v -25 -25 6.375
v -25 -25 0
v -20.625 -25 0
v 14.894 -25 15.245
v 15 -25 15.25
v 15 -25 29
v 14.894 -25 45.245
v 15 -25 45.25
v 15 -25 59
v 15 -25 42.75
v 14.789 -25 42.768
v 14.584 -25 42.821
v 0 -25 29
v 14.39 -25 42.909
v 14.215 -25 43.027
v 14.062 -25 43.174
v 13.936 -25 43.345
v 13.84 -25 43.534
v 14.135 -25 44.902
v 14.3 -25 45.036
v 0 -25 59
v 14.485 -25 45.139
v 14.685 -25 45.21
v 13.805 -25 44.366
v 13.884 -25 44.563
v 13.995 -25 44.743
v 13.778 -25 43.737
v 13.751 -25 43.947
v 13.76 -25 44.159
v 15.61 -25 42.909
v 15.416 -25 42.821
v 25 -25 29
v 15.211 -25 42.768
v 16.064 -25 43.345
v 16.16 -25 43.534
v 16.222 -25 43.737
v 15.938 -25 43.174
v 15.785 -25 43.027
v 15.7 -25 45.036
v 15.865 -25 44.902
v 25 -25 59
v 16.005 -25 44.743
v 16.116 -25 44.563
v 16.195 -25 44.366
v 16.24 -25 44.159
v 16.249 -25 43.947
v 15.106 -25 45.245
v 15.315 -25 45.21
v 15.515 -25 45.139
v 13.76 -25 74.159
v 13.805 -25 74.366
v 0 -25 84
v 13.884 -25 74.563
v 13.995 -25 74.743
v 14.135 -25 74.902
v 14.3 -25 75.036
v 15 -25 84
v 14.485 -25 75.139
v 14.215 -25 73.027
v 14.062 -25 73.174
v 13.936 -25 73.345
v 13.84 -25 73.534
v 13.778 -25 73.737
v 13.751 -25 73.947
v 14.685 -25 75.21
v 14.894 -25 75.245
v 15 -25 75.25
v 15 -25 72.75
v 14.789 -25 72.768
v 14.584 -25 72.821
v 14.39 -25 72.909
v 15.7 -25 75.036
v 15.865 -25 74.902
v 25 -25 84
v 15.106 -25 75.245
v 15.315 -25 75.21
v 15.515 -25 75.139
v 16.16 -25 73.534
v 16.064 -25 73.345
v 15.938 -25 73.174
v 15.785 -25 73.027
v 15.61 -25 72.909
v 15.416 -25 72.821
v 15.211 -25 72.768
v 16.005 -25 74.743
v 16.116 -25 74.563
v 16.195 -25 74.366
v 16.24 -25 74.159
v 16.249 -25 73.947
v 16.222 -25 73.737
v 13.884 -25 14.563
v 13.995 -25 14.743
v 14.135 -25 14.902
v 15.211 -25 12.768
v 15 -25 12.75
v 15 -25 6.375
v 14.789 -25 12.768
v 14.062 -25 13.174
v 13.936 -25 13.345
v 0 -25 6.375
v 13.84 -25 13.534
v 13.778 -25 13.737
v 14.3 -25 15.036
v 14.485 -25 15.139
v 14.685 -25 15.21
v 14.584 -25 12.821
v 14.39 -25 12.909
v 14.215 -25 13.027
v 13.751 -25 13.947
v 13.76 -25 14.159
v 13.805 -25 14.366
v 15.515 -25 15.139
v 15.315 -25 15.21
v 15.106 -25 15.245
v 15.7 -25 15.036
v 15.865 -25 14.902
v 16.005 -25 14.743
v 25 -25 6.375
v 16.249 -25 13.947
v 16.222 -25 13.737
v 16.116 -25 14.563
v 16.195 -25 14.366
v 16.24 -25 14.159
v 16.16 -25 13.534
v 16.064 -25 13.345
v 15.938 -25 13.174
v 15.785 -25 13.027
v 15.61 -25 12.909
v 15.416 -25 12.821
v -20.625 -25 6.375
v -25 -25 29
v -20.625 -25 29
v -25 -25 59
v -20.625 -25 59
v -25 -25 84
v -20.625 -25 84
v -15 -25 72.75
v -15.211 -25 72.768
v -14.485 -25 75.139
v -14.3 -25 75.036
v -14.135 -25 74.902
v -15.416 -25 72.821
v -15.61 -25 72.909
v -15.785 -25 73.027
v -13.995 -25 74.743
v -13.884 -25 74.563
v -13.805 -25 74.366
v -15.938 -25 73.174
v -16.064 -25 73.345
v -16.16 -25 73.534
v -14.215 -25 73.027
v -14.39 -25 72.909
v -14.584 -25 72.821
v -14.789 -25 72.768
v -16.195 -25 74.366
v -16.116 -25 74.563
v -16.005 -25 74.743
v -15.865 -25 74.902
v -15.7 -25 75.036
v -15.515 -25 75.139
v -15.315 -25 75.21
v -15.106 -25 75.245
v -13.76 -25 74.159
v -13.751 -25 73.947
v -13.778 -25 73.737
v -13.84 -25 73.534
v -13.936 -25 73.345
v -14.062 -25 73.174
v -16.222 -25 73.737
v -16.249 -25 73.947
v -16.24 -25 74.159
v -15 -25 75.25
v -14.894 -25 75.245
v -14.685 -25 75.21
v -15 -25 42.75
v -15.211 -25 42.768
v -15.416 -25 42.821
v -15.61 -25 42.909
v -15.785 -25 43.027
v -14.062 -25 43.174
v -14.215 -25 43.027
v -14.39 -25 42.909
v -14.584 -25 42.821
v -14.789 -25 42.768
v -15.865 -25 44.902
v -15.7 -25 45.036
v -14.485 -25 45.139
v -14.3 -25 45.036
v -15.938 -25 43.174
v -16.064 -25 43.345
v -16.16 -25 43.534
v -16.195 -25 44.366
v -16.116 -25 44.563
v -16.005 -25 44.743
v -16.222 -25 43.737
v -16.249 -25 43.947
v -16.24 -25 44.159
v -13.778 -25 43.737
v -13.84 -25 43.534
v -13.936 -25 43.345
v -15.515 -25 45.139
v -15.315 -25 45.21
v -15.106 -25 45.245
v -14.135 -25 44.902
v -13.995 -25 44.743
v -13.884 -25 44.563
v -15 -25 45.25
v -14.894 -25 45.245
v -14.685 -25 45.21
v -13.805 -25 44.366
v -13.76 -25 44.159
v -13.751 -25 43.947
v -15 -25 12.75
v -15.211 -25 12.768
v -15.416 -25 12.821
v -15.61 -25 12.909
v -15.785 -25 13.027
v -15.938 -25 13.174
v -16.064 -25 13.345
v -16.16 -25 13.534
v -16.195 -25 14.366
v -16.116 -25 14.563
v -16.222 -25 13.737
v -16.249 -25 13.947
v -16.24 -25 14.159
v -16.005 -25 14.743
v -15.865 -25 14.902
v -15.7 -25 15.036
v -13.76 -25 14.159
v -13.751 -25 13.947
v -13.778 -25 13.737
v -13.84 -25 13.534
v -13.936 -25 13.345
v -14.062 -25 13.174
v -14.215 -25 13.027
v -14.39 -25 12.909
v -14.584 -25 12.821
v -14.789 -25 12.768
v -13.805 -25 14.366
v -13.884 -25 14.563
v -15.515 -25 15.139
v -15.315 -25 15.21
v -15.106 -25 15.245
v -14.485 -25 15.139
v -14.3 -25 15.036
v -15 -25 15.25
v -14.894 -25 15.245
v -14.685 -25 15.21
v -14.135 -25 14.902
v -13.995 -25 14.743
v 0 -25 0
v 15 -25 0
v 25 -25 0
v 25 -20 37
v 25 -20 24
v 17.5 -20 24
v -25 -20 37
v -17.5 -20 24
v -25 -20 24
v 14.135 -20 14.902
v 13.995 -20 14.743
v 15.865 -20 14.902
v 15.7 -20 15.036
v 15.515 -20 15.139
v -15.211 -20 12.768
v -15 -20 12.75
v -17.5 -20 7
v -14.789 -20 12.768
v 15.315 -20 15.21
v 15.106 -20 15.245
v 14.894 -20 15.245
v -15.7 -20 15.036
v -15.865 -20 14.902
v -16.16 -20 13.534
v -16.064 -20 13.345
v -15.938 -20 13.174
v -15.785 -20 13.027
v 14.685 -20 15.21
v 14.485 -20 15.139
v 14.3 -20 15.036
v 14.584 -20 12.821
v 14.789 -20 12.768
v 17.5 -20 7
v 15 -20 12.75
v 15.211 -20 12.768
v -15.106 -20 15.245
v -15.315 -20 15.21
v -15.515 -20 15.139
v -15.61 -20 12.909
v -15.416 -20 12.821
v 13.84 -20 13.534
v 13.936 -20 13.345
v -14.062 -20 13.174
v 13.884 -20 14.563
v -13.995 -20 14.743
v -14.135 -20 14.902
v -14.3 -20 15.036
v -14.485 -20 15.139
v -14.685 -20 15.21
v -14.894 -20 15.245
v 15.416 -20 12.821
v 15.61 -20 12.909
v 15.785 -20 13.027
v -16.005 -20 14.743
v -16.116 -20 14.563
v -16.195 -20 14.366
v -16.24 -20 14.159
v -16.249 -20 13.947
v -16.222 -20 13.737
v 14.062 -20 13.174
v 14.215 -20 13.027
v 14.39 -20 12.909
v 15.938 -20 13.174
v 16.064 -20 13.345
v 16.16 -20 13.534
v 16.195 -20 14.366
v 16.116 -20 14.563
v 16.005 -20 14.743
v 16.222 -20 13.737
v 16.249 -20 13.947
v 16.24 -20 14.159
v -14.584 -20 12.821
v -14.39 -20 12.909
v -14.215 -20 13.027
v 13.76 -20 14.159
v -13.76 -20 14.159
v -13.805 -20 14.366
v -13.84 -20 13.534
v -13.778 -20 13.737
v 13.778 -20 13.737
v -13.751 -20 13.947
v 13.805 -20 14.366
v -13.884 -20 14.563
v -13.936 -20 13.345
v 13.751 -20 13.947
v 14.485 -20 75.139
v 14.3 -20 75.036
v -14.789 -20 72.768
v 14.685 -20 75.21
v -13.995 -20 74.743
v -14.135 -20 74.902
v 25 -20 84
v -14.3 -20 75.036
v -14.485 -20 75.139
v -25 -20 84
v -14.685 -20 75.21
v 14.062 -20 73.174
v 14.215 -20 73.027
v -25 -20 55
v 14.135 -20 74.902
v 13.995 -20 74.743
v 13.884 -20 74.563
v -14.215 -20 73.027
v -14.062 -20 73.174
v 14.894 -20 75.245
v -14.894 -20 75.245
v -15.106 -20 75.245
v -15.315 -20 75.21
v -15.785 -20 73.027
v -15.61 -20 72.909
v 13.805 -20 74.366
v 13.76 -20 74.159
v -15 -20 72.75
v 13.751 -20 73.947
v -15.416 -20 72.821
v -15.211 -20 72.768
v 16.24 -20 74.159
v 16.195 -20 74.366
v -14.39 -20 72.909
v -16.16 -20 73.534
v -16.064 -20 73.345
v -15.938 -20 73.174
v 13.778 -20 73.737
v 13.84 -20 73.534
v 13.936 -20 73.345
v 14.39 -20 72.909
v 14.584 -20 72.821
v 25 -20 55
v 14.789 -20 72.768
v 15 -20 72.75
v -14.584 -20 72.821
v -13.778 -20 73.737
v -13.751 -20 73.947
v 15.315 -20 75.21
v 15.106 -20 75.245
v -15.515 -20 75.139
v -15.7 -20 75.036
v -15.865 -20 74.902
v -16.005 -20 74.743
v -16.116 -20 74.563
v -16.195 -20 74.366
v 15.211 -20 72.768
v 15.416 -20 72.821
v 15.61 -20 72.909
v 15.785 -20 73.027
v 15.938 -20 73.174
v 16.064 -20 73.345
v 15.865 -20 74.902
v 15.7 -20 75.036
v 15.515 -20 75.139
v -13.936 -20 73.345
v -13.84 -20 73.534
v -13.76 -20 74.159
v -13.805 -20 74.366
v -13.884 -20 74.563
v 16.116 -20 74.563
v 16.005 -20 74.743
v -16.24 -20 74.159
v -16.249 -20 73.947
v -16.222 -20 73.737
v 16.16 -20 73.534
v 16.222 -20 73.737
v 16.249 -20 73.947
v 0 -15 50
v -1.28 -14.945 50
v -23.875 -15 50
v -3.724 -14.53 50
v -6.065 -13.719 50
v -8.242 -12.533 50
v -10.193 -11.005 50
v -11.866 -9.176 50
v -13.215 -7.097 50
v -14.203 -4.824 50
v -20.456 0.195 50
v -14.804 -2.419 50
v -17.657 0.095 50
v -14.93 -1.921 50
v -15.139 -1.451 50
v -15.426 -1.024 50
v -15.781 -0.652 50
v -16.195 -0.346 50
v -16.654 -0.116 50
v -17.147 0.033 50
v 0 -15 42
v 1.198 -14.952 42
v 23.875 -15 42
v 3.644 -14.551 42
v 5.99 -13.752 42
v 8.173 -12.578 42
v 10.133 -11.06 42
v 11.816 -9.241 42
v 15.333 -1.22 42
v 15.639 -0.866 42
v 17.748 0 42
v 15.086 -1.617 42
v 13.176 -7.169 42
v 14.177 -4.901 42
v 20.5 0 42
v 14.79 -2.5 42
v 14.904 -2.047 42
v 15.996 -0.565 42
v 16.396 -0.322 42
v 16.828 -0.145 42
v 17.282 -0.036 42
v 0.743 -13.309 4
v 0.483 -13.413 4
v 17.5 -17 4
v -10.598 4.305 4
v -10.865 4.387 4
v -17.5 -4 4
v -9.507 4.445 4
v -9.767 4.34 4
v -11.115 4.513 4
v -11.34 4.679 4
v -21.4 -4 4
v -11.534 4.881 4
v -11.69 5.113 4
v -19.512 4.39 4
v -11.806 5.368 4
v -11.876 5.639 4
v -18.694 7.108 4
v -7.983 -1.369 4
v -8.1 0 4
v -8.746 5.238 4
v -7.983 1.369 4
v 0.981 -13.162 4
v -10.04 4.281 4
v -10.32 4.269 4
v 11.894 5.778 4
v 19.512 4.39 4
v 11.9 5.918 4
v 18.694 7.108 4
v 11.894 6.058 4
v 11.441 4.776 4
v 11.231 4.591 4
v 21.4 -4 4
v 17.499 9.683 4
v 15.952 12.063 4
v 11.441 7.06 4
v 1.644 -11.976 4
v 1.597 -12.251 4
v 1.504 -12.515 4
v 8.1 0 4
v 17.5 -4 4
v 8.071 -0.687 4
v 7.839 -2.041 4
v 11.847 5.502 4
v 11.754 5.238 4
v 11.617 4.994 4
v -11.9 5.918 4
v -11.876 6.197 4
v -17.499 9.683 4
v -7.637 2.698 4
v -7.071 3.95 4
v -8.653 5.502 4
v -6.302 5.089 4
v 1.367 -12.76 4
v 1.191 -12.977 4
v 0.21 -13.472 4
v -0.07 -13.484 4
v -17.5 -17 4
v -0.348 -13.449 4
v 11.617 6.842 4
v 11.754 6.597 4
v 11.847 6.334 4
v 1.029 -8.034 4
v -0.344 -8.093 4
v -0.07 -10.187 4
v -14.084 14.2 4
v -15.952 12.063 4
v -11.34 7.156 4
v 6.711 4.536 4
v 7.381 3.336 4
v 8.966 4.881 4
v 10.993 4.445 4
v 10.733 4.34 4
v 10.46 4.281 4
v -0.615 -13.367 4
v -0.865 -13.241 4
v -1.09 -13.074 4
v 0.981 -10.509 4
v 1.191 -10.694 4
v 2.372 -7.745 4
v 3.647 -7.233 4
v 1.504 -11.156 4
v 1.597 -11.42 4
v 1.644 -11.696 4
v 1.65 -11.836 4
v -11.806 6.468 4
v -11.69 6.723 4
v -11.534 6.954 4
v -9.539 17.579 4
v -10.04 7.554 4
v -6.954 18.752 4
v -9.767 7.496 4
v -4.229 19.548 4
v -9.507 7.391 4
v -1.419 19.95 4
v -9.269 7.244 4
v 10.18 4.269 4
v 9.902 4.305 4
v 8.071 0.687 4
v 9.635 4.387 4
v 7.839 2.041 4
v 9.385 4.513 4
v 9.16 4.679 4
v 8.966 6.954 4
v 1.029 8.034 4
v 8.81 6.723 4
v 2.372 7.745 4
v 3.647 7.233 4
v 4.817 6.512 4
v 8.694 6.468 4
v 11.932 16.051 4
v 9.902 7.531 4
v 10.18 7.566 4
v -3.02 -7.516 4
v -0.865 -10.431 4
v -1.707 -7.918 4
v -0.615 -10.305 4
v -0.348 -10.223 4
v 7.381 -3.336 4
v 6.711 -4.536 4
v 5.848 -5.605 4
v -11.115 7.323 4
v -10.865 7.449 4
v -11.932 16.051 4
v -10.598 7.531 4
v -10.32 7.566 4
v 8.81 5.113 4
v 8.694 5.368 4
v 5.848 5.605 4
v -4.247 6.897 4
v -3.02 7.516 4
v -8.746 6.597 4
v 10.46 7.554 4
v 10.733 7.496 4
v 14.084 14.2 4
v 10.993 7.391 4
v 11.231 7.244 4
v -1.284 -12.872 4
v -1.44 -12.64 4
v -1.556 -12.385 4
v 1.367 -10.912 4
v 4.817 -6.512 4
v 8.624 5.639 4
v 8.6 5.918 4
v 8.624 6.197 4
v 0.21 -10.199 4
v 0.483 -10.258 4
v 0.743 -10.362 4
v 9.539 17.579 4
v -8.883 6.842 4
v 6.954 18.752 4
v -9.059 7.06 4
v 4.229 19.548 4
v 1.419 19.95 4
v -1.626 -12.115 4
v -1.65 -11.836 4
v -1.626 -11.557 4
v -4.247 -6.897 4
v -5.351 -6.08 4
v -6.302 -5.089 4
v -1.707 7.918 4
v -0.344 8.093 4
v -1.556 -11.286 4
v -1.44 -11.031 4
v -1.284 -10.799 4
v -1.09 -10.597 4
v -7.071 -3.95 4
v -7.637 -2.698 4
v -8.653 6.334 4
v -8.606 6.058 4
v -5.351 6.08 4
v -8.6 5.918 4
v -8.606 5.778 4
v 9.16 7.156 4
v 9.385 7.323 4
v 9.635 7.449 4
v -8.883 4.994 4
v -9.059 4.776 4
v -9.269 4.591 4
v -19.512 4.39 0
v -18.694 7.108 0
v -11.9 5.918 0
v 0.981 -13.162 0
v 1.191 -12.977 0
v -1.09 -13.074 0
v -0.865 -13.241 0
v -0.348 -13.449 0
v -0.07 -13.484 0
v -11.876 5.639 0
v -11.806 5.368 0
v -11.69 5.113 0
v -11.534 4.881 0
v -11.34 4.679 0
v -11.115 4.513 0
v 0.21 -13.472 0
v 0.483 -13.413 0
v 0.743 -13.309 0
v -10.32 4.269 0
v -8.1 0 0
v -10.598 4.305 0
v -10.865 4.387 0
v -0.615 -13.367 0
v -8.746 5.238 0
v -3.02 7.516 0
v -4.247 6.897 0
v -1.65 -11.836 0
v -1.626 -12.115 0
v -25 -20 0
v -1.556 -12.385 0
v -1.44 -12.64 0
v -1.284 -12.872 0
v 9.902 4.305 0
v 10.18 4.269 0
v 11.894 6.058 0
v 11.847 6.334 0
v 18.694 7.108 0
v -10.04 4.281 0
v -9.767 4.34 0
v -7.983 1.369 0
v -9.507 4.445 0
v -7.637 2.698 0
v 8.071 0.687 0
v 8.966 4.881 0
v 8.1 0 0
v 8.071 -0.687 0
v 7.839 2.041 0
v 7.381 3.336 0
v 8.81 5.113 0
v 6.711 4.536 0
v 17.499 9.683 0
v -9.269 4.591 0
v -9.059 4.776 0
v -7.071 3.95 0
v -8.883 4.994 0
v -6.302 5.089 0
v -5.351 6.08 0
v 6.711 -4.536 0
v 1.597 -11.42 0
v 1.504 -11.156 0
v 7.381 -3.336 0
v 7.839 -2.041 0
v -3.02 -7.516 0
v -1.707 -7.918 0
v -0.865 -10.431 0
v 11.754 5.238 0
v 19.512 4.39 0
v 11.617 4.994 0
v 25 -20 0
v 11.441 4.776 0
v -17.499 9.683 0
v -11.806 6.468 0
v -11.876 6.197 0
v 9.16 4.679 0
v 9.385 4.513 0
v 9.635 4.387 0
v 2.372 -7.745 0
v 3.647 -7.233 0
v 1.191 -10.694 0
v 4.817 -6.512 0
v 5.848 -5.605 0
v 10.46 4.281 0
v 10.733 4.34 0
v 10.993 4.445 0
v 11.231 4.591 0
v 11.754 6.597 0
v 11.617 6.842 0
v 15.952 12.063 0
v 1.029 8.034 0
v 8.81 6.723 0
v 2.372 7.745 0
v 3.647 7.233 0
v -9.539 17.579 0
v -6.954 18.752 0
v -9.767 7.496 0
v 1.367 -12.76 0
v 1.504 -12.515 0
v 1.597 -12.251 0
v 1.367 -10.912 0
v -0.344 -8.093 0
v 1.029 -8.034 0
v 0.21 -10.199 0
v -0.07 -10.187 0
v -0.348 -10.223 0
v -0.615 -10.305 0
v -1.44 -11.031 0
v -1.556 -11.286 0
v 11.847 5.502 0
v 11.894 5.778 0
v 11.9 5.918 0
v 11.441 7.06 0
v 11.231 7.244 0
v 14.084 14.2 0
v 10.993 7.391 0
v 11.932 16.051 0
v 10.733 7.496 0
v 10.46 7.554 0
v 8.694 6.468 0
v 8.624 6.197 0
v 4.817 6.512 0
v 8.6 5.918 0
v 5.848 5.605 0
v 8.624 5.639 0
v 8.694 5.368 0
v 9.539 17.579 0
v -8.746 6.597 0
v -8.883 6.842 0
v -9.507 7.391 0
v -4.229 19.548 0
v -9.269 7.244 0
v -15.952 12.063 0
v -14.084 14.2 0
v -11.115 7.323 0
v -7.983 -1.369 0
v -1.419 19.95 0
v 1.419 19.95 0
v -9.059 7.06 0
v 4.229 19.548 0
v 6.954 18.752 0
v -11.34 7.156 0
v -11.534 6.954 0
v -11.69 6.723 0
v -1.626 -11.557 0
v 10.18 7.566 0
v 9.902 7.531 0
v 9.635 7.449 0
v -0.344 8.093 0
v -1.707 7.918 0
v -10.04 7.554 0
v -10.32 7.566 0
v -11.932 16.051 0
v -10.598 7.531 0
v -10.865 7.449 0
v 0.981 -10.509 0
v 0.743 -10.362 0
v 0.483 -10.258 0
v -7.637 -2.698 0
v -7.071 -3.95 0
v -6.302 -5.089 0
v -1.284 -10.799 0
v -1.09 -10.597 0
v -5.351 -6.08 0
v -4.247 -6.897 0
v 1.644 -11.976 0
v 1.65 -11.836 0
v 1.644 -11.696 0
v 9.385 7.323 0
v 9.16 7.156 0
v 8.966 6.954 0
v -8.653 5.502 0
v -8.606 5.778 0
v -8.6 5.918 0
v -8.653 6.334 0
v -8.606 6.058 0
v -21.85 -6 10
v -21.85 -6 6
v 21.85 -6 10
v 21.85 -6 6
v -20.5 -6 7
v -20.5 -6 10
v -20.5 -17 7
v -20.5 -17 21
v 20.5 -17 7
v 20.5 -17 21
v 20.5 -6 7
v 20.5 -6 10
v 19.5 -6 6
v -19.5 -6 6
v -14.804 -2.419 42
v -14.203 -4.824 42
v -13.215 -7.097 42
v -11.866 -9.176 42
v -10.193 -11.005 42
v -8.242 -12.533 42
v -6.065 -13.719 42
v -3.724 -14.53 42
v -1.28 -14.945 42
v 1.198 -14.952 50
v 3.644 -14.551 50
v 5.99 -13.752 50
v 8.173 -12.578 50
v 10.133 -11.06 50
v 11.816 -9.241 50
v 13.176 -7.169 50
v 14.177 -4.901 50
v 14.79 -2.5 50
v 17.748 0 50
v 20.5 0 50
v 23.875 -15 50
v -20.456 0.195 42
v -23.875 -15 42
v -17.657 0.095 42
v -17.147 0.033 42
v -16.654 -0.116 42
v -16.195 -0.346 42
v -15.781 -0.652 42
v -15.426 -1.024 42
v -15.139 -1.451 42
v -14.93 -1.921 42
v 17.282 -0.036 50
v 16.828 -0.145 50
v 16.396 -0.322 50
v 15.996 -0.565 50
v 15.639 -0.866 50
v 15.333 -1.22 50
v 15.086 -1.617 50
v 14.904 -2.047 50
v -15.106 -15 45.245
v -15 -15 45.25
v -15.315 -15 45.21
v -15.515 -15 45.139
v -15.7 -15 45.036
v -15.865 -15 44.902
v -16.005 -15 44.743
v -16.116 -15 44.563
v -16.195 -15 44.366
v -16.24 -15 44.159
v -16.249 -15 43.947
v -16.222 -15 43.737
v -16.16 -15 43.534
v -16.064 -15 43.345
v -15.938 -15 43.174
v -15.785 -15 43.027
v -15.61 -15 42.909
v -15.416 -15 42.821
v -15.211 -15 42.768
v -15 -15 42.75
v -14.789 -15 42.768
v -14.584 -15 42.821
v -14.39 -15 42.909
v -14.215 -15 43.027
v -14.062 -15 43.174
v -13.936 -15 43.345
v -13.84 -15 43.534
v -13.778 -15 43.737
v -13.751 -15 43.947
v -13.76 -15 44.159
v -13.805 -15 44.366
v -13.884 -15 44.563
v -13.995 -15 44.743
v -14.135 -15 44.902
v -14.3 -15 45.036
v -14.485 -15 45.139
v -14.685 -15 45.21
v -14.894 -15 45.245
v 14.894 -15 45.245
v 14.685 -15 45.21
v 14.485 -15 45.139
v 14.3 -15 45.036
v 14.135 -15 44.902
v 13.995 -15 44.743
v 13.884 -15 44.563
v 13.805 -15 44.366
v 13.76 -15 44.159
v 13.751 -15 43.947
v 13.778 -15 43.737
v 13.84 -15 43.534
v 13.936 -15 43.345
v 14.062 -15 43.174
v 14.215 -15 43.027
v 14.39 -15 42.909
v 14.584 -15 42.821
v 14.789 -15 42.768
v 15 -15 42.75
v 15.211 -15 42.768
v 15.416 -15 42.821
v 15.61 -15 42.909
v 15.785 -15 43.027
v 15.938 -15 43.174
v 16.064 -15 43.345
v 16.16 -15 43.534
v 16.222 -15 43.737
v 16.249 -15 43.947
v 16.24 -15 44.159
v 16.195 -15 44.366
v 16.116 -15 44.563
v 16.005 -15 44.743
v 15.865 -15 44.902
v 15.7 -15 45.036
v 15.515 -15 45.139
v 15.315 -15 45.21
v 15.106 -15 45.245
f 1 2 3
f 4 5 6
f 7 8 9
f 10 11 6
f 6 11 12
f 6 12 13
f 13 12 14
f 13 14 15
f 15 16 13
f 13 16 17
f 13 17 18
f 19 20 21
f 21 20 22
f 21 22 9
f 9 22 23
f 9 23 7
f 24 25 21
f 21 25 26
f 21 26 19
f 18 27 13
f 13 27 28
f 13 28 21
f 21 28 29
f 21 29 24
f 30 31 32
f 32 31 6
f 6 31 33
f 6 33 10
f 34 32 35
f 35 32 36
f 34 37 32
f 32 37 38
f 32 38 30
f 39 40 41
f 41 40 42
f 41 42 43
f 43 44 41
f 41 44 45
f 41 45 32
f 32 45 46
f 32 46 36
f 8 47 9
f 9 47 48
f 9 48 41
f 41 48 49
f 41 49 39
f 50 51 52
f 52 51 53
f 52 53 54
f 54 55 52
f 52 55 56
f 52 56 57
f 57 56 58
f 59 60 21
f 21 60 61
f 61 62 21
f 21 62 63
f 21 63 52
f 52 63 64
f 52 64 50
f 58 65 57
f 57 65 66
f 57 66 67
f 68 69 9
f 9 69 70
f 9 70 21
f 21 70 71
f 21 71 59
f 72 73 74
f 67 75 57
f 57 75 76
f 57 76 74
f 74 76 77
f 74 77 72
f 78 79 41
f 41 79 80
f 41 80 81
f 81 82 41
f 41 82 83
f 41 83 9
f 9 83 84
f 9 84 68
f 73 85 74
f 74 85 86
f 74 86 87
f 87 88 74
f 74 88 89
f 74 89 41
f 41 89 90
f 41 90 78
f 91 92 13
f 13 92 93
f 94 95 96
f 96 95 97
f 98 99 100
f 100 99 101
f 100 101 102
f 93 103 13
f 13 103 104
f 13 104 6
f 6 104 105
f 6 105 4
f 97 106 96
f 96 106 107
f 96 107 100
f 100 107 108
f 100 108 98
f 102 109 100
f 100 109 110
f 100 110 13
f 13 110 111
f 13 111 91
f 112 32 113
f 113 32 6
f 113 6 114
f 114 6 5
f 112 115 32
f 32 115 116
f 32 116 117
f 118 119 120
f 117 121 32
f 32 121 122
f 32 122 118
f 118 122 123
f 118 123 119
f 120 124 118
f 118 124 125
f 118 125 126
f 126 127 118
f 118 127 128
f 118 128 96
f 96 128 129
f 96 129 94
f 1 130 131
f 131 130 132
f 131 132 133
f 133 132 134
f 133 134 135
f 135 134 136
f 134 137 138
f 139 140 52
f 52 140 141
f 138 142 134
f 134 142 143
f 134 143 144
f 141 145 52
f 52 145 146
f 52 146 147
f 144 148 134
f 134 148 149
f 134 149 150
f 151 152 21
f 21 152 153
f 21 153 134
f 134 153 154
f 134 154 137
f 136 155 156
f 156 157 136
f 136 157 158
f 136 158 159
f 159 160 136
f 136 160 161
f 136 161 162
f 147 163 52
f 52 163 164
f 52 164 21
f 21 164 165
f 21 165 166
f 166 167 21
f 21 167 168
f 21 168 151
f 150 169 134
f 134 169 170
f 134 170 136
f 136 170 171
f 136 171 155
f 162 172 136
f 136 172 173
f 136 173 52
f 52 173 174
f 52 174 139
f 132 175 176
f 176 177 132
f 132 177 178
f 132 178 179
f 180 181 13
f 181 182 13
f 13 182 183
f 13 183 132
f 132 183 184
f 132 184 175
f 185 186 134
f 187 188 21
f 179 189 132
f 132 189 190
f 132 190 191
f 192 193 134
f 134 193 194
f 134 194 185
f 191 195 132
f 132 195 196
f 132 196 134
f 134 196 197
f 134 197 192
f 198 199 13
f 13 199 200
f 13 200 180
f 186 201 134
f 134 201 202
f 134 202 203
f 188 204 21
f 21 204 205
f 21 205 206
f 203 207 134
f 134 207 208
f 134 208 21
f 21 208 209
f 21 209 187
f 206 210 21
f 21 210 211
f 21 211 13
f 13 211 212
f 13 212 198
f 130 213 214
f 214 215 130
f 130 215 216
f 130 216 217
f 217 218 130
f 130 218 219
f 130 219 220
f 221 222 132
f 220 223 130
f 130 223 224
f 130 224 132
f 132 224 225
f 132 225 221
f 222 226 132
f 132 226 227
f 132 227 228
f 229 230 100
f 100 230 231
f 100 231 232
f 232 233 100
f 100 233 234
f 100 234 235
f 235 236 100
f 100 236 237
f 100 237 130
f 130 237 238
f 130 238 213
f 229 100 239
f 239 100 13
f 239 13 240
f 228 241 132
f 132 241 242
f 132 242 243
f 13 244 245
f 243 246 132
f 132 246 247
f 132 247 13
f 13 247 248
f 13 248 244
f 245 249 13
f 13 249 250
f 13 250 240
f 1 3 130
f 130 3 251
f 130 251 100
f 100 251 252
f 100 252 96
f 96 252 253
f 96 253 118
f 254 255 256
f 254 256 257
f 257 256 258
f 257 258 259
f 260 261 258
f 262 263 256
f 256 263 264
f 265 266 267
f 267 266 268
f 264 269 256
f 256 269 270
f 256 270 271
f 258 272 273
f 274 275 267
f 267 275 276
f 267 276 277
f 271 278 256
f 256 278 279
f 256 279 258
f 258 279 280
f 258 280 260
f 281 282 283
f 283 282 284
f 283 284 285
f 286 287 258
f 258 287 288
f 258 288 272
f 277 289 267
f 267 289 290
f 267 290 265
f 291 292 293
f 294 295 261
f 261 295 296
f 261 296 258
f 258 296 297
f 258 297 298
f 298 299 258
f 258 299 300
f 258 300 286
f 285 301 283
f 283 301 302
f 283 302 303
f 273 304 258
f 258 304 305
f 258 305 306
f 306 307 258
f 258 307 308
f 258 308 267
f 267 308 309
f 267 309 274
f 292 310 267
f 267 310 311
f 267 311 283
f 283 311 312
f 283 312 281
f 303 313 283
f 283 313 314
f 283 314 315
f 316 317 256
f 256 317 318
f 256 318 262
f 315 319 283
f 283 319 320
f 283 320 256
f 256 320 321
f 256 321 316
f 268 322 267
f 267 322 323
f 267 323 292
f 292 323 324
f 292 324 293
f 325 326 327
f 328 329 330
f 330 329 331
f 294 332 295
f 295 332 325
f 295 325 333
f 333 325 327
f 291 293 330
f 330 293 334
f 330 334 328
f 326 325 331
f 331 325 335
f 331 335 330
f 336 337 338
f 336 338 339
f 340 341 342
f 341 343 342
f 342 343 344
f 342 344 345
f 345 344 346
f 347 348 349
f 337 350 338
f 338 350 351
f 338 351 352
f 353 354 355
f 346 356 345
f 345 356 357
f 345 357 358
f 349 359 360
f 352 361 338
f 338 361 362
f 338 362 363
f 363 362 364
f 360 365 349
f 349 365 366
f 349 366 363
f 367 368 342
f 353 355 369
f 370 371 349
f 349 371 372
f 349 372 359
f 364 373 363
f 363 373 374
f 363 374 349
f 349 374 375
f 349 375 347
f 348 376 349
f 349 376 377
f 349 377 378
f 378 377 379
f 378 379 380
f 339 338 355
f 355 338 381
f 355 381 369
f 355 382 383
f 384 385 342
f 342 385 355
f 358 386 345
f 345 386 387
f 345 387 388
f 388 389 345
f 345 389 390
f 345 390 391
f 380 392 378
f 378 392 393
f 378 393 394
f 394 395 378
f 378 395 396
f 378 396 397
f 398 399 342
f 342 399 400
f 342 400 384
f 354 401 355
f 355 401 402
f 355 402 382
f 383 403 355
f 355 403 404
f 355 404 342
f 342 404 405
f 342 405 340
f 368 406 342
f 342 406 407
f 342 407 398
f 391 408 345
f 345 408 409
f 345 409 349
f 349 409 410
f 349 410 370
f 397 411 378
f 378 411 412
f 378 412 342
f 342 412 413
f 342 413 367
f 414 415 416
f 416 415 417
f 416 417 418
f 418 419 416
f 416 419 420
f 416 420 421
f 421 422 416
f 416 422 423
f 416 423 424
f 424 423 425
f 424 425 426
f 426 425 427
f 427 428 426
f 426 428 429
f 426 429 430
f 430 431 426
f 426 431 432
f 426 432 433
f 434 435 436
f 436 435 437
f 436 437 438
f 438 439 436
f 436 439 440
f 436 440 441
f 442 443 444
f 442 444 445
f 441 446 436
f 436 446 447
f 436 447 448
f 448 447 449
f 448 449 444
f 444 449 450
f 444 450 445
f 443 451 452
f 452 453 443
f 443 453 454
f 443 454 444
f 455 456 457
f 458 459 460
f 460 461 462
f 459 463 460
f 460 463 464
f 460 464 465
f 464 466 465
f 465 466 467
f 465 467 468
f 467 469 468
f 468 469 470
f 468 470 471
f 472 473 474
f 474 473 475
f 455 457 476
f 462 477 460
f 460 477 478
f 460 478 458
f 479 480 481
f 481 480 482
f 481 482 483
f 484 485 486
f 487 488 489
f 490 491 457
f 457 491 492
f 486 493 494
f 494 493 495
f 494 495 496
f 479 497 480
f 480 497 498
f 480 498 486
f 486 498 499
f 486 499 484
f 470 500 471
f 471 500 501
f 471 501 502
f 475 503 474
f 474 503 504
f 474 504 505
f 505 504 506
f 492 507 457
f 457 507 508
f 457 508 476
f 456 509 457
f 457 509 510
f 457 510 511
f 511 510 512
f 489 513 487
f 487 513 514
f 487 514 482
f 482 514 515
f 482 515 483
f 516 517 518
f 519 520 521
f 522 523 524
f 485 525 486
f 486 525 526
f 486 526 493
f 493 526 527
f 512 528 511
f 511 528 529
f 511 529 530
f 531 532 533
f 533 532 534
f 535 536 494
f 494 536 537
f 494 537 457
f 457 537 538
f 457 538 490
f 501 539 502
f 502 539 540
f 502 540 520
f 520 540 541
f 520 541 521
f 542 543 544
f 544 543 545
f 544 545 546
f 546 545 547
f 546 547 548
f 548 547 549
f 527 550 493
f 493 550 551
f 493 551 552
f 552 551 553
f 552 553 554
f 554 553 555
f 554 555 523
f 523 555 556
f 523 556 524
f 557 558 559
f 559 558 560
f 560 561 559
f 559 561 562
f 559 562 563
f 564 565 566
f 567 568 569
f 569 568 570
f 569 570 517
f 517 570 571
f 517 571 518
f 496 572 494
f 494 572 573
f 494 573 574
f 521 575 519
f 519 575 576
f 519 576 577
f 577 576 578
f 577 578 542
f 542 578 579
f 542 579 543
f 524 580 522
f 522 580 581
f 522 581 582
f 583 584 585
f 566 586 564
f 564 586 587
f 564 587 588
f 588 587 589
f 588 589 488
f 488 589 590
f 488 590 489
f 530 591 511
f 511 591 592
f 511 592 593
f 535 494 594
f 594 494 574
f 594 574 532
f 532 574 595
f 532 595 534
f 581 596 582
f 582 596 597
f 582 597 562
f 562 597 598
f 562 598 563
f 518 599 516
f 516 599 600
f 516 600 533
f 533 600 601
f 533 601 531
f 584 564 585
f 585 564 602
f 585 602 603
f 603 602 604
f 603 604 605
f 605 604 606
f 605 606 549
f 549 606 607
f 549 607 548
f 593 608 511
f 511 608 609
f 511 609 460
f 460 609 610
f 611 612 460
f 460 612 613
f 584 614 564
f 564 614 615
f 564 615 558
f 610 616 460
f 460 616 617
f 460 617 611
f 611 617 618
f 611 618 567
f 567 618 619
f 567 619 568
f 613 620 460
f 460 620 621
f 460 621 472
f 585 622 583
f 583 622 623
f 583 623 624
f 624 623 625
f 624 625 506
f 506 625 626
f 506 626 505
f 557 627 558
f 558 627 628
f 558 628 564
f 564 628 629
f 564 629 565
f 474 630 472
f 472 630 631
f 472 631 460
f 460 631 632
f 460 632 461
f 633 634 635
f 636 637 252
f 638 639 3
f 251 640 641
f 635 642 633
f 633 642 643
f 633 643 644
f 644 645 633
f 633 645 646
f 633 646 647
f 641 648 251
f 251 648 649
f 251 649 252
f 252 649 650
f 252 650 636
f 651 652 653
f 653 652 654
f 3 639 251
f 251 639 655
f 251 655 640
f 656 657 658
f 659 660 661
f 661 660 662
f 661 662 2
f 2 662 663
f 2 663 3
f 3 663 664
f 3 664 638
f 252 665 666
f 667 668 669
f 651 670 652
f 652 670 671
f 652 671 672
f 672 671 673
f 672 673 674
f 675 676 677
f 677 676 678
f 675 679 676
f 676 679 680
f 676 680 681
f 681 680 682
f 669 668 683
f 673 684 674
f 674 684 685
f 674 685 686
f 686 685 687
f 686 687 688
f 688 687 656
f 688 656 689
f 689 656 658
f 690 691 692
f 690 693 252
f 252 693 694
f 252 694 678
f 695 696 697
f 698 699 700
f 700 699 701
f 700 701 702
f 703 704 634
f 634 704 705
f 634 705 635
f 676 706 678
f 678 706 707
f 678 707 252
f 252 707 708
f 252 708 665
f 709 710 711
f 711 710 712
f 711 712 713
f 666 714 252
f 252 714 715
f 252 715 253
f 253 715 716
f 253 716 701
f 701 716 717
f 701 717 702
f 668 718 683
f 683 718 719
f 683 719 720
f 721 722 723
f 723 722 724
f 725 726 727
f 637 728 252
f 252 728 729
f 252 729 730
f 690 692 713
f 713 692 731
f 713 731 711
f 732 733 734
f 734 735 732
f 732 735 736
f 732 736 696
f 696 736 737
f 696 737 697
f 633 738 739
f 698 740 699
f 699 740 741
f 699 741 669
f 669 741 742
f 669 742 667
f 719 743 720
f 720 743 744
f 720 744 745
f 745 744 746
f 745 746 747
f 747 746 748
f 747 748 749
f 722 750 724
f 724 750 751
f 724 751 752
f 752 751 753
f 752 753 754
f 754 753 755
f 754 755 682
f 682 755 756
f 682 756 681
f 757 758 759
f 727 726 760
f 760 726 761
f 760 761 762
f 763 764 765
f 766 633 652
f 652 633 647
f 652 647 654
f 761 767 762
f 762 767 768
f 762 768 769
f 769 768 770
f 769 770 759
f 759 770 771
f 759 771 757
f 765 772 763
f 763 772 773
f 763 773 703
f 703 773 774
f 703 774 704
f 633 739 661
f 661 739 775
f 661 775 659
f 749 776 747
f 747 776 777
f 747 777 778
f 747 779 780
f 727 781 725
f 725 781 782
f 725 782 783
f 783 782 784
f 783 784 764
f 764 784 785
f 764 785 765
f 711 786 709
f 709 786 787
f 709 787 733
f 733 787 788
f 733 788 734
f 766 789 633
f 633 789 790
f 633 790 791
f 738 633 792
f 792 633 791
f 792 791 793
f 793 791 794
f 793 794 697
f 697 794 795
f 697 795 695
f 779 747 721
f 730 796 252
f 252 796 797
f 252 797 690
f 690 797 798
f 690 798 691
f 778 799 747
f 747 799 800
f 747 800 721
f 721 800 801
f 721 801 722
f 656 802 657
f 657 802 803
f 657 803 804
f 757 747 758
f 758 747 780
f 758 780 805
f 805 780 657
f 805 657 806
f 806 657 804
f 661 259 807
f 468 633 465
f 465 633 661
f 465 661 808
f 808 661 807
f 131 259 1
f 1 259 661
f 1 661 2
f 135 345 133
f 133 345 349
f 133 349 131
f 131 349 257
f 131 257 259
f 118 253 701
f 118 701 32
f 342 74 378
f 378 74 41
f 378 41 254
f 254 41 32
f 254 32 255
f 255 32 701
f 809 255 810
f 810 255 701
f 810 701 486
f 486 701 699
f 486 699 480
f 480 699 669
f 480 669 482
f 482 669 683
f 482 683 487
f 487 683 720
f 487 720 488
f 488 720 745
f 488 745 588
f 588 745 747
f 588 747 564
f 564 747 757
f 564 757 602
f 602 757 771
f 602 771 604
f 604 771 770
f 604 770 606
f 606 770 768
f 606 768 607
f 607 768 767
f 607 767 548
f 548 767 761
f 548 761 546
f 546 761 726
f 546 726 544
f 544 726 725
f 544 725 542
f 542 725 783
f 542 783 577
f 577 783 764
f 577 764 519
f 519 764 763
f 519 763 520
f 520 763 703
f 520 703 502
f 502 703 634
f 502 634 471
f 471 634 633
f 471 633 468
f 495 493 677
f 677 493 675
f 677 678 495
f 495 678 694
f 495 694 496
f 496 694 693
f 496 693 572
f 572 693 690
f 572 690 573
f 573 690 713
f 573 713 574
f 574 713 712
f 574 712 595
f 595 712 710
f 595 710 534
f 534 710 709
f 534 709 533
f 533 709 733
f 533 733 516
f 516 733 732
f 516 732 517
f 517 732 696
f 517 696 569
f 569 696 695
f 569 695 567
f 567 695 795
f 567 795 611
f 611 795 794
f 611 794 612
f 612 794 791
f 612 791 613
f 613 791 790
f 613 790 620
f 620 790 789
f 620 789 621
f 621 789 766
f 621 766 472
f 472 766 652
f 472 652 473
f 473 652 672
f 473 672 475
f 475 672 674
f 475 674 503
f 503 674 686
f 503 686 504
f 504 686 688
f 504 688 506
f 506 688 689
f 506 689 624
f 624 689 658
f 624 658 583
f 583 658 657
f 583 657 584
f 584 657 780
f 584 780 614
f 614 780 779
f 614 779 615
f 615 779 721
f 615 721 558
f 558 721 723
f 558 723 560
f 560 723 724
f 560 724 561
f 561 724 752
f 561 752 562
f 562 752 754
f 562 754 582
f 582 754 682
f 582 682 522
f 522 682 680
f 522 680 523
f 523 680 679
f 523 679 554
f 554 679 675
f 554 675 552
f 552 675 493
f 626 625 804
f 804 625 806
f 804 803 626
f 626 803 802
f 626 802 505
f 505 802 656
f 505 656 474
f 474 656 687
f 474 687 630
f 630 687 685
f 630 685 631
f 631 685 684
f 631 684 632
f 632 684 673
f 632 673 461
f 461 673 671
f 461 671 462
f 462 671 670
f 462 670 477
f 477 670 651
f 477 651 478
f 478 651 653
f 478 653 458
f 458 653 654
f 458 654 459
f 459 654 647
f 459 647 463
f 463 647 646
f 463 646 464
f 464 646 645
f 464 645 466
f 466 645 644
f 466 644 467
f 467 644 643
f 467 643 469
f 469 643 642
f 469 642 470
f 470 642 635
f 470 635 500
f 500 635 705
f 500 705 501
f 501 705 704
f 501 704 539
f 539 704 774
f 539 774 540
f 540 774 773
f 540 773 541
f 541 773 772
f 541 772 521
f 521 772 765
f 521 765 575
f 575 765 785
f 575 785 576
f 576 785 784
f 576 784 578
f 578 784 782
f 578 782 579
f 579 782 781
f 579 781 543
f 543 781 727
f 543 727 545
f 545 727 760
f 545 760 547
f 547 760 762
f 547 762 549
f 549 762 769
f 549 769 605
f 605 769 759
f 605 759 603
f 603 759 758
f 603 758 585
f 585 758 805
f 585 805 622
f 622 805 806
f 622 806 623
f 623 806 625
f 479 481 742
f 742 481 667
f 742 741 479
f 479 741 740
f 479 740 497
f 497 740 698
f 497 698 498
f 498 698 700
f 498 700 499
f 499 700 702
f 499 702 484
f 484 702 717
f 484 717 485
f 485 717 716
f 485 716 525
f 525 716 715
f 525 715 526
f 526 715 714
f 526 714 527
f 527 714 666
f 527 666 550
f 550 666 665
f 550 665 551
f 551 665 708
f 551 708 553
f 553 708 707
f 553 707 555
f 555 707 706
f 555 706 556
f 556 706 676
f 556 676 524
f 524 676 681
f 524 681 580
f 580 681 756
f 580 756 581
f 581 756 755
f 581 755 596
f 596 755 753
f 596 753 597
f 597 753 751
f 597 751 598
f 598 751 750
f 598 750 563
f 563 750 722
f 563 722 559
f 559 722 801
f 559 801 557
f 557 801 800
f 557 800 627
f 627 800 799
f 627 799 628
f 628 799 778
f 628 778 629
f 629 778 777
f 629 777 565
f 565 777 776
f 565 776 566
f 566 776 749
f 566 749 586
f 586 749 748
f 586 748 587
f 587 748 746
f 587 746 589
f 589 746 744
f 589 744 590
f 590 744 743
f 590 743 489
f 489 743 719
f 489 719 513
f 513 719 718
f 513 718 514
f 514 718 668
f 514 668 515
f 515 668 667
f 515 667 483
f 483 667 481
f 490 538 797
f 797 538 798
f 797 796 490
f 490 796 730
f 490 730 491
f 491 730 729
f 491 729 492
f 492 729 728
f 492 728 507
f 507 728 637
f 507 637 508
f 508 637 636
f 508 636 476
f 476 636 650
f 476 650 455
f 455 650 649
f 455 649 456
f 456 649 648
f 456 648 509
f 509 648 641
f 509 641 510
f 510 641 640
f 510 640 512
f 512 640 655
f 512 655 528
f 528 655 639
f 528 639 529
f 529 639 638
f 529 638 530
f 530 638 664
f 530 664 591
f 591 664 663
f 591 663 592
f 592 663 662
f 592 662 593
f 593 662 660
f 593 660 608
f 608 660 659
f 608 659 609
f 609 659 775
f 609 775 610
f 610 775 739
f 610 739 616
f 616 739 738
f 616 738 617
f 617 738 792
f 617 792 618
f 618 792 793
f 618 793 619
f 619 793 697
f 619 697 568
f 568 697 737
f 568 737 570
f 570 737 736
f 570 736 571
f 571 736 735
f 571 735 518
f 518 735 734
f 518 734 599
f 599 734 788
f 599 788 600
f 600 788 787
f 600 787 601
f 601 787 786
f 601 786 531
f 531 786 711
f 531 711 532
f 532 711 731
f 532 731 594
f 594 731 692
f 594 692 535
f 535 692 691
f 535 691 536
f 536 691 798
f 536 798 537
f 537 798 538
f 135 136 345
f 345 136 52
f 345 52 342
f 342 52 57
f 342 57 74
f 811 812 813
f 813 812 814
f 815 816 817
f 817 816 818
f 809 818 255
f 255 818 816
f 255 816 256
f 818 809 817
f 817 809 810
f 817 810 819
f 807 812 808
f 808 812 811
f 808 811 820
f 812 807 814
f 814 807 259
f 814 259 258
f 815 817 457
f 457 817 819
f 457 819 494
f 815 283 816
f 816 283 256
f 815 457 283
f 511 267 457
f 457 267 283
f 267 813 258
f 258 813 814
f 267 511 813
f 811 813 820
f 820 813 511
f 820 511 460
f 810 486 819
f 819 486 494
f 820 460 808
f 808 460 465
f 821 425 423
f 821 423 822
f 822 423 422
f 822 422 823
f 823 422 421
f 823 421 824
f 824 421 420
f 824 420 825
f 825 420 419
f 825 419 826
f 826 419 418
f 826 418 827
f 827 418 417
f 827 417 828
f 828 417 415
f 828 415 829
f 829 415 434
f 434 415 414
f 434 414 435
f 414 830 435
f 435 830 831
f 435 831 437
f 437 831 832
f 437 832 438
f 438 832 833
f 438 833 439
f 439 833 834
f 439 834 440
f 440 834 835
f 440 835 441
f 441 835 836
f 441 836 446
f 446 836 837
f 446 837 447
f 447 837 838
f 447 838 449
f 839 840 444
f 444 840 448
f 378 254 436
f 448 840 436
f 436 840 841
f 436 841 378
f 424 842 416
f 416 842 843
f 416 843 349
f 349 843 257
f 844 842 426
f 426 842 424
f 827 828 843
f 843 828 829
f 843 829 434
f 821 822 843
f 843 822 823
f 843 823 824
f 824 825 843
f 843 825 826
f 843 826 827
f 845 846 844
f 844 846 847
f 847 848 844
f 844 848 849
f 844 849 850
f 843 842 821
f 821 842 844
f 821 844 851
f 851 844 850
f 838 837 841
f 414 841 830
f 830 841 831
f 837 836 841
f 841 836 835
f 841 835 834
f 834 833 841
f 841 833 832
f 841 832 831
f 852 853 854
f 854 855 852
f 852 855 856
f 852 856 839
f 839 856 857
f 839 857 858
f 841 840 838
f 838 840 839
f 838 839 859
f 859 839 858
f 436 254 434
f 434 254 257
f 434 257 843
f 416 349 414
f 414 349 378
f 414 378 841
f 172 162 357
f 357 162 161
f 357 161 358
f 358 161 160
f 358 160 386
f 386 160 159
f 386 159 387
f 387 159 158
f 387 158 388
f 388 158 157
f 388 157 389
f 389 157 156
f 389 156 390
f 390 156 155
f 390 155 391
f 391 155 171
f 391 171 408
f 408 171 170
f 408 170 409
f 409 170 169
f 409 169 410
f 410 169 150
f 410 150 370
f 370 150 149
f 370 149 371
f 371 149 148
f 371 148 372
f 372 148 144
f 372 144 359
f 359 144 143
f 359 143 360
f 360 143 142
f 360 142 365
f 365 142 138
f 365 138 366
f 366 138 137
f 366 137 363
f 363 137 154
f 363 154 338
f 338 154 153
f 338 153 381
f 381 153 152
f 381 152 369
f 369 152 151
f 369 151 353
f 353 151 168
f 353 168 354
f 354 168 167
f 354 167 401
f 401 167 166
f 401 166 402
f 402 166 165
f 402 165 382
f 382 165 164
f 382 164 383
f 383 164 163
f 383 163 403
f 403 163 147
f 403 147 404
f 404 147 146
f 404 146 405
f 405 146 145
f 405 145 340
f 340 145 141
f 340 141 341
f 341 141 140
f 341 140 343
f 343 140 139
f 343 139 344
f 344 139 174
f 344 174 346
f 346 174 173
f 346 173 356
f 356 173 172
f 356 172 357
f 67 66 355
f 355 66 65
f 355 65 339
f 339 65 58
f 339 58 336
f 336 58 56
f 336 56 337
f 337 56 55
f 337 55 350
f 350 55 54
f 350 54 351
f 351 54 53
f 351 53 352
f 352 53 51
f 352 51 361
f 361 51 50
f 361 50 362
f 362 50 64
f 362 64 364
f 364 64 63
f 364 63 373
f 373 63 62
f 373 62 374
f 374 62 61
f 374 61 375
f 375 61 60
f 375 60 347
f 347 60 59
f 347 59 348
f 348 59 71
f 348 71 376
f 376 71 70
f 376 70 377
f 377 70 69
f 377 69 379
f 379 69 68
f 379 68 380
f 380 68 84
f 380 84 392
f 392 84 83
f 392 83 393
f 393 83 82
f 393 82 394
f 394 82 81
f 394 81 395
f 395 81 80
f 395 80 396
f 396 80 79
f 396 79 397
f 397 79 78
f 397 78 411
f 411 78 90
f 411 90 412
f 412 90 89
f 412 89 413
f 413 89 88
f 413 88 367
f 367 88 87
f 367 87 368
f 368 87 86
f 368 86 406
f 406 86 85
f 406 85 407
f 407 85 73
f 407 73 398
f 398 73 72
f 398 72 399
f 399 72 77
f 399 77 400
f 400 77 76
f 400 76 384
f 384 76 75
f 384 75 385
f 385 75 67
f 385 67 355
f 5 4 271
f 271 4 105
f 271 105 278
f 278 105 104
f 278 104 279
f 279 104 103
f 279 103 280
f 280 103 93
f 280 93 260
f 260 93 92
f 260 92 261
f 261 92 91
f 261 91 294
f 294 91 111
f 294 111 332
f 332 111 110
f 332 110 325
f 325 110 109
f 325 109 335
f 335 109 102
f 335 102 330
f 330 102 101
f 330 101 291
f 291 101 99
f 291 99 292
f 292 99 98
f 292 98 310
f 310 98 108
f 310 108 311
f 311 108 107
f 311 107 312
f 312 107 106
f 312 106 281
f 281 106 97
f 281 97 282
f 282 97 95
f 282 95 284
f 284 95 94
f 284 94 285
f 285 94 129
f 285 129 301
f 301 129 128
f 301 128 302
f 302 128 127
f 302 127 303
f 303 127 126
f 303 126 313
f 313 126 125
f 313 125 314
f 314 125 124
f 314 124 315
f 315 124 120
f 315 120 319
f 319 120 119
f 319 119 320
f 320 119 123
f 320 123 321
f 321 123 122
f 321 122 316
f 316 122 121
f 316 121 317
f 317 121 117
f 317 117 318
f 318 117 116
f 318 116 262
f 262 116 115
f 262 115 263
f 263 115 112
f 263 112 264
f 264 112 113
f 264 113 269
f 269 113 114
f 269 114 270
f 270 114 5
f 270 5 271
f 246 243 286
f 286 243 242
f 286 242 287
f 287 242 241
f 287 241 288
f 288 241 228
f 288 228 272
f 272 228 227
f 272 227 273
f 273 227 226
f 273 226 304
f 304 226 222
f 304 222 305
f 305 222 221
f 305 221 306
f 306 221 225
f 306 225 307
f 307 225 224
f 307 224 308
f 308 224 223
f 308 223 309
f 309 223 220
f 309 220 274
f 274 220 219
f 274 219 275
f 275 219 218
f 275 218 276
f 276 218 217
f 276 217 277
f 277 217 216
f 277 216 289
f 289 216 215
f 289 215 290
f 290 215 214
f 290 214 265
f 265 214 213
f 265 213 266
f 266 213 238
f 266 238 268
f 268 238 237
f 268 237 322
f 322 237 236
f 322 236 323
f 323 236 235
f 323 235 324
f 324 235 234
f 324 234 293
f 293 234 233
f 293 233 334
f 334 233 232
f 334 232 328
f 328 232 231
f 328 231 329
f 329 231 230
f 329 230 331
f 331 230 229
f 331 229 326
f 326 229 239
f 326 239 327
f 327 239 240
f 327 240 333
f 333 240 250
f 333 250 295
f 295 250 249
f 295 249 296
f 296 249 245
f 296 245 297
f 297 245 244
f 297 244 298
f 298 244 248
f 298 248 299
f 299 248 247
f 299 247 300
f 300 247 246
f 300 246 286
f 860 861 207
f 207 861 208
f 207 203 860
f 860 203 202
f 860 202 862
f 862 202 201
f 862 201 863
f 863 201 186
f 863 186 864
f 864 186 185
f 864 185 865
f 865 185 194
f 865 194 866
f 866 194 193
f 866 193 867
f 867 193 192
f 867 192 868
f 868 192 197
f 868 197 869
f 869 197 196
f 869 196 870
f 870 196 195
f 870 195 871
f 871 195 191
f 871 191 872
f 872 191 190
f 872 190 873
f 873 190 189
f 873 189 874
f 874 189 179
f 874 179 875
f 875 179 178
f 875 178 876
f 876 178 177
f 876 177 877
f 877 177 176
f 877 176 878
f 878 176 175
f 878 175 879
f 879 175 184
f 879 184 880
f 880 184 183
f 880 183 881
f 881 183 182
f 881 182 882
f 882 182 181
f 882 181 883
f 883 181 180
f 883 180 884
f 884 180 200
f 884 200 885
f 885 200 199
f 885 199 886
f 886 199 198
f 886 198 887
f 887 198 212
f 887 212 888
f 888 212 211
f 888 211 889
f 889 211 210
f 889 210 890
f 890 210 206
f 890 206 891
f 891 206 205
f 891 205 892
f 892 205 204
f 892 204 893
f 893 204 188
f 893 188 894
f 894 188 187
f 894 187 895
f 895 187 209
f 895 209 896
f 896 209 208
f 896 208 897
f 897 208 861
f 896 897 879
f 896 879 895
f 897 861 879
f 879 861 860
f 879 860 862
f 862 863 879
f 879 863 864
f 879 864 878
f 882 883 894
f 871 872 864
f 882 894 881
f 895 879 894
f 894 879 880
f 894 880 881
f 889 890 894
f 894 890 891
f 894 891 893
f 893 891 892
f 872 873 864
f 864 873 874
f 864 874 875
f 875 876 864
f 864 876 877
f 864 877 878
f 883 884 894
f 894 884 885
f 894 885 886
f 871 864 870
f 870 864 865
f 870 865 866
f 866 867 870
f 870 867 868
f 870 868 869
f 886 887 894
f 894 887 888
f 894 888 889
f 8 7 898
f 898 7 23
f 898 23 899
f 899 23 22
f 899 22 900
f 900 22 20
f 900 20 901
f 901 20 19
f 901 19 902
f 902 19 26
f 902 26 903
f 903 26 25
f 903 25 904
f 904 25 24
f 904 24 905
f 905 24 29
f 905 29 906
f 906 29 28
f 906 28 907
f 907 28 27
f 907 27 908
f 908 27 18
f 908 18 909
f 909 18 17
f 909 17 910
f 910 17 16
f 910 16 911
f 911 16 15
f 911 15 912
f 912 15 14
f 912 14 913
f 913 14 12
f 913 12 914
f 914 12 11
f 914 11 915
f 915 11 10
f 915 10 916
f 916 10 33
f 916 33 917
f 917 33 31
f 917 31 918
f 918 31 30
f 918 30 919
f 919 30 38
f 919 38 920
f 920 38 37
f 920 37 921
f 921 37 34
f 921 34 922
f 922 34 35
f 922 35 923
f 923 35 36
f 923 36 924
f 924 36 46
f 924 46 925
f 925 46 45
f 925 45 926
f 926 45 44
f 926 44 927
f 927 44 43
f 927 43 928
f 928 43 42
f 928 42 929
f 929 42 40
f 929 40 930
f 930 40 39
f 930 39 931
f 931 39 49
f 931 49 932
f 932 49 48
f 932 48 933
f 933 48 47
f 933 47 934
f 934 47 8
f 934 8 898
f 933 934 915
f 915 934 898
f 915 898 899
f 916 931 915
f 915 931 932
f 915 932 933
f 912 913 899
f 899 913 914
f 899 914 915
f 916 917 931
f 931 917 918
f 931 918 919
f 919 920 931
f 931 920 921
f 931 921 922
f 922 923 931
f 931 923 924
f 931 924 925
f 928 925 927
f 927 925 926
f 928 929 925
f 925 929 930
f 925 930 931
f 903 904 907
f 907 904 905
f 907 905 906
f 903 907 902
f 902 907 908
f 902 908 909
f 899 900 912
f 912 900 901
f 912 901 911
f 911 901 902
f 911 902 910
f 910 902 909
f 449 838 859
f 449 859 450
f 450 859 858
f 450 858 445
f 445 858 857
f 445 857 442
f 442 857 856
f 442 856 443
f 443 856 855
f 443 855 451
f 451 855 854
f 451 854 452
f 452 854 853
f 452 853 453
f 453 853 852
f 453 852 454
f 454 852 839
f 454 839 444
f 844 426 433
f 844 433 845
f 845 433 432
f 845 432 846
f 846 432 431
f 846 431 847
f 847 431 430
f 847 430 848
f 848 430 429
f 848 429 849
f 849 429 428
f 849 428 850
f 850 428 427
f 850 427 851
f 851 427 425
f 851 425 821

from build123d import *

# Parameters (mm, degrees)
ESQUISSE1_R                  = 8.1
ESQUISSE1_R_2                = 1.65
BOSS_EXTRU_1_DEPTH           = 4
ESQUISSE2_W                  = 50
ESQUISSE2_H                  = 5
BOSS_EXTRU_2_DEPTH           = 80
BOSS_EXTRU_3_DEPTH           = 20
ENL_V_MAT_EXTRU_2_DEPTH      = 99.748417709
ENL_V_MAT_EXTRU_2_DEPTH_BACK = 99.748417709
CHANFREIN1_SIZE              = 3
CHANFREIN2_SIZE              = 2
BOSS_EXTRU_4_DEPTH           = 4
BOSS_EXTRU_4_DEPTH_BACK      = 4
CHANFREIN3_SIZE              = 5
ENL_V_MAT_EXTRU_3_DEPTH      = 5
ENL_V_MAT_EXTRU_3_DEPTH_BACK = 20
ESQUISSE6_R                  = 1.25
CONG_1_R                     = 3


with BuildPart() as part:
    # Esquisse1 → Boss.-Extru.1 (new body)
    with BuildSketch(Plane.XY):
        with BuildLine():
            Line((-25, -20), (-25, -25))
            Line((-25, -25), (25, -25))
            Line((25, -25), (25, -20))
            Line((25, -20), (19.512195122, 4.390243902))
            ThreePointArc((19.512195122, 4.390243902), (0, 20), (-19.512195122, 4.390243902))
            Line((-19.512195122, 4.390243902), (-25, -20))
        make_face()
        Circle(ESQUISSE1_R, mode=Mode.SUBTRACT)
        with Locations((-10.25, 5.917840259)):
            Circle(ESQUISSE1_R_2, mode=Mode.SUBTRACT)
        with Locations((10.25, 5.917840259)):
            Circle(ESQUISSE1_R_2, mode=Mode.SUBTRACT)
        with Locations((0, -11.835680518)):
            Circle(ESQUISSE1_R_2, mode=Mode.SUBTRACT)
    extrude(amount=BOSS_EXTRU_1_DEPTH)

    # Esquisse2 → Boss.-Extru.2 (add)
    with BuildSketch(Plane.XY.offset(4)):
        with Locations((0, -22.5)):
            Rectangle(ESQUISSE2_W, ESQUISSE2_H)
    extrude(amount=BOSS_EXTRU_2_DEPTH)

    # Esquisse4 → Boss.-Extru.3 (add)
    with BuildSketch(Plane.XY.offset(4)):
        Polygon((-20.5, 0), (-20.5, -20), (-25, -20), align=None)
        Polygon((20.5, -20), (25, -20), (20.5, 0), align=None)
    extrude(amount=BOSS_EXTRU_3_DEPTH)

    # Esquisse5 → Enlèv. mat.-Extru.2 (cut, two sides: drawn at the far end of the back side and taken through both)
    with BuildSketch(Plane(origin=(-20.5, 0, 0), x_dir=(0, 0, -1), z_dir=(1, 0, 0)).offset(-ENL_V_MAT_EXTRU_2_DEPTH_BACK)):
        Polygon((-4, 0), (-24, 0), (-24, -20), (-10, -6), (-4, -6), align=None)
    extrude(amount=ENL_V_MAT_EXTRU_2_DEPTH + ENL_V_MAT_EXTRU_2_DEPTH_BACK, mode=Mode.SUBTRACT)

    # Chanfrein1
    chanfrein1_edges = [part.edges().sort_by_distance(p)[0] for p in [
        (-20.5, -13, 4),
        (-20.5, -20, 14),
        (0, -20, 4),
        (20.5, -20, 14),
        (20.5, -13, 4),
    ]]
    chamfer(chanfrein1_edges, length=CHANFREIN1_SIZE)

    # Chanfrein2
    chanfrein2_edges = [part.edges().sort_by_distance(p)[0] for p in [
        (-19.675, -6, 4),
        (19.675, -6, 4),
    ]]
    chamfer(chanfrein2_edges, length=CHANFREIN2_SIZE)

    # Esquisse7 → Boss.-Extru.4 (add, two sides: drawn at the far end of the back side and taken through both)
    with BuildSketch(Plane.XY.offset(46).offset(-BOSS_EXTRU_4_DEPTH_BACK)):
        with BuildLine():
            Line((-15, 0), (-20.456097561, 0.195121951))
            Line((-20.456097561, 0.195121951), (-25, -20))
            Line((-25, -20), (25, -20))
            Line((25, -20), (20.5, 0))
            Line((20.5, 0), (15, 0))
            ThreePointArc((15, 0), (0, -15), (-15, 0))
        make_face()
    extrude(amount=BOSS_EXTRU_4_DEPTH + BOSS_EXTRU_4_DEPTH_BACK)

    # Chanfrein3
    # the kernel refuses this chamfer: 5 mm, written as the material it adds along each edge
    with BuildSketch(Plane(origin=(-25, -20, 42), x_dir=(0, -0.027495876610586317, -0.9996219169112968), z_dir=(1, 0, 0))) as chanfrein3_piece_1_section:
        Polygon((CHANFREIN3_SIZE * 0.999621916911, CHANFREIN3_SIZE * 0.0274958766106), (-CHANFREIN3_SIZE * 0.0274958766106, CHANFREIN3_SIZE * 0.999621916911), (0, 0), align=None)
    chanfrein3_piece_1 = extrude(amount=50, mode=Mode.PRIVATE)
    chanfrein3_piece_1 = split(chanfrein3_piece_1, bisect_by=Plane(origin=(23.445378938, -13.090573058, 40.343175913), z_dir=(-0.9756097560975611, -0.2195121951219509, 0)), keep=Keep.TOP, mode=Mode.PRIVATE)
    chanfrein3_piece_1 = split(chanfrein3_piece_1, bisect_by=Plane(origin=(-23.445378938, -13.090573058, 40.343175913), z_dir=(0.9756097560975611, -0.21951219512195103, 0)), keep=Keep.TOP, mode=Mode.PRIVATE)
    chanfrein3_piece_1 = chanfrein3_piece_1 - Plane(origin=(0, 0, 40.343175913), x_dir=(1, 0, 0), z_dir=(0, 0, -1)) * Cylinder(15, 120, mode=Mode.PRIVATE)
    add(chanfrein3_piece_1)
    with BuildSketch(Plane(origin=(-25, -20, 50), x_dir=(0, -0.027495876610586317, 0.9996219169112968), z_dir=(1, 0, 0))) as chanfrein3_piece_2_section:
        Polygon((CHANFREIN3_SIZE * 0.999621916911, -CHANFREIN3_SIZE * 0.0274958766106), (-CHANFREIN3_SIZE * 0.0274958766106, -CHANFREIN3_SIZE * 0.999621916911), (0, 0), align=None)
    chanfrein3_piece_2 = extrude(amount=50, mode=Mode.PRIVATE)
    chanfrein3_piece_2 = split(chanfrein3_piece_2, bisect_by=Plane(origin=(23.445378938, -13.090573058, 51.656824087), z_dir=(-0.9756097560975611, -0.2195121951219509, 0)), keep=Keep.TOP, mode=Mode.PRIVATE)
    chanfrein3_piece_2 = split(chanfrein3_piece_2, bisect_by=Plane(origin=(-23.445378938, -13.090573058, 51.656824087), z_dir=(0.9756097560975611, -0.21951219512195103, 0)), keep=Keep.TOP, mode=Mode.PRIVATE)
    chanfrein3_piece_2 = chanfrein3_piece_2 - Plane(origin=(0, 0, 51.656824087), x_dir=(1, 0, 0), z_dir=(0, 0, -1)) * Cylinder(15, 120, mode=Mode.PRIVATE)
    add(chanfrein3_piece_2)

    # Esquisse6 → Enlèv. mat.-Extru.3 (cut, two sides: drawn at the far end of the back side and taken through both)
    with BuildSketch(Plane(origin=(0, -20, 0), x_dir=(1, 0, 0), z_dir=(0, 1, 0)).offset(-ENL_V_MAT_EXTRU_3_DEPTH_BACK)):
        with Locations(Location((-15, -74, 0), (0, 0, 90))):
            Circle(ESQUISSE6_R)
        with Locations(Location((15, -74, 0), (0, 0, 90))):
            Circle(ESQUISSE6_R)
        with Locations(Location((15, -14, 0), (0, 0, 90))):
            Circle(ESQUISSE6_R)
        with Locations(Location((-15, -14, 0), (0, 0, 90))):
            Circle(ESQUISSE6_R)
        with Locations(Location((-15, -44, 0), (0, 0, 270))):
            Circle(ESQUISSE6_R)
        with Locations(Location((15, -44, 0), (0, 0, 90))):
            Circle(ESQUISSE6_R)
    extrude(amount=ENL_V_MAT_EXTRU_3_DEPTH + ENL_V_MAT_EXTRU_3_DEPTH_BACK, mode=Mode.SUBTRACT)

    # Congé1
    cong_1_edges = [part.edges().sort_by_distance(p)[0] for p in [
        (-15, 0, 46),
        (15, 0, 46),
    ]]
    fillet(cong_1_edges, radius=CONG_1_R)


solid = part.part
